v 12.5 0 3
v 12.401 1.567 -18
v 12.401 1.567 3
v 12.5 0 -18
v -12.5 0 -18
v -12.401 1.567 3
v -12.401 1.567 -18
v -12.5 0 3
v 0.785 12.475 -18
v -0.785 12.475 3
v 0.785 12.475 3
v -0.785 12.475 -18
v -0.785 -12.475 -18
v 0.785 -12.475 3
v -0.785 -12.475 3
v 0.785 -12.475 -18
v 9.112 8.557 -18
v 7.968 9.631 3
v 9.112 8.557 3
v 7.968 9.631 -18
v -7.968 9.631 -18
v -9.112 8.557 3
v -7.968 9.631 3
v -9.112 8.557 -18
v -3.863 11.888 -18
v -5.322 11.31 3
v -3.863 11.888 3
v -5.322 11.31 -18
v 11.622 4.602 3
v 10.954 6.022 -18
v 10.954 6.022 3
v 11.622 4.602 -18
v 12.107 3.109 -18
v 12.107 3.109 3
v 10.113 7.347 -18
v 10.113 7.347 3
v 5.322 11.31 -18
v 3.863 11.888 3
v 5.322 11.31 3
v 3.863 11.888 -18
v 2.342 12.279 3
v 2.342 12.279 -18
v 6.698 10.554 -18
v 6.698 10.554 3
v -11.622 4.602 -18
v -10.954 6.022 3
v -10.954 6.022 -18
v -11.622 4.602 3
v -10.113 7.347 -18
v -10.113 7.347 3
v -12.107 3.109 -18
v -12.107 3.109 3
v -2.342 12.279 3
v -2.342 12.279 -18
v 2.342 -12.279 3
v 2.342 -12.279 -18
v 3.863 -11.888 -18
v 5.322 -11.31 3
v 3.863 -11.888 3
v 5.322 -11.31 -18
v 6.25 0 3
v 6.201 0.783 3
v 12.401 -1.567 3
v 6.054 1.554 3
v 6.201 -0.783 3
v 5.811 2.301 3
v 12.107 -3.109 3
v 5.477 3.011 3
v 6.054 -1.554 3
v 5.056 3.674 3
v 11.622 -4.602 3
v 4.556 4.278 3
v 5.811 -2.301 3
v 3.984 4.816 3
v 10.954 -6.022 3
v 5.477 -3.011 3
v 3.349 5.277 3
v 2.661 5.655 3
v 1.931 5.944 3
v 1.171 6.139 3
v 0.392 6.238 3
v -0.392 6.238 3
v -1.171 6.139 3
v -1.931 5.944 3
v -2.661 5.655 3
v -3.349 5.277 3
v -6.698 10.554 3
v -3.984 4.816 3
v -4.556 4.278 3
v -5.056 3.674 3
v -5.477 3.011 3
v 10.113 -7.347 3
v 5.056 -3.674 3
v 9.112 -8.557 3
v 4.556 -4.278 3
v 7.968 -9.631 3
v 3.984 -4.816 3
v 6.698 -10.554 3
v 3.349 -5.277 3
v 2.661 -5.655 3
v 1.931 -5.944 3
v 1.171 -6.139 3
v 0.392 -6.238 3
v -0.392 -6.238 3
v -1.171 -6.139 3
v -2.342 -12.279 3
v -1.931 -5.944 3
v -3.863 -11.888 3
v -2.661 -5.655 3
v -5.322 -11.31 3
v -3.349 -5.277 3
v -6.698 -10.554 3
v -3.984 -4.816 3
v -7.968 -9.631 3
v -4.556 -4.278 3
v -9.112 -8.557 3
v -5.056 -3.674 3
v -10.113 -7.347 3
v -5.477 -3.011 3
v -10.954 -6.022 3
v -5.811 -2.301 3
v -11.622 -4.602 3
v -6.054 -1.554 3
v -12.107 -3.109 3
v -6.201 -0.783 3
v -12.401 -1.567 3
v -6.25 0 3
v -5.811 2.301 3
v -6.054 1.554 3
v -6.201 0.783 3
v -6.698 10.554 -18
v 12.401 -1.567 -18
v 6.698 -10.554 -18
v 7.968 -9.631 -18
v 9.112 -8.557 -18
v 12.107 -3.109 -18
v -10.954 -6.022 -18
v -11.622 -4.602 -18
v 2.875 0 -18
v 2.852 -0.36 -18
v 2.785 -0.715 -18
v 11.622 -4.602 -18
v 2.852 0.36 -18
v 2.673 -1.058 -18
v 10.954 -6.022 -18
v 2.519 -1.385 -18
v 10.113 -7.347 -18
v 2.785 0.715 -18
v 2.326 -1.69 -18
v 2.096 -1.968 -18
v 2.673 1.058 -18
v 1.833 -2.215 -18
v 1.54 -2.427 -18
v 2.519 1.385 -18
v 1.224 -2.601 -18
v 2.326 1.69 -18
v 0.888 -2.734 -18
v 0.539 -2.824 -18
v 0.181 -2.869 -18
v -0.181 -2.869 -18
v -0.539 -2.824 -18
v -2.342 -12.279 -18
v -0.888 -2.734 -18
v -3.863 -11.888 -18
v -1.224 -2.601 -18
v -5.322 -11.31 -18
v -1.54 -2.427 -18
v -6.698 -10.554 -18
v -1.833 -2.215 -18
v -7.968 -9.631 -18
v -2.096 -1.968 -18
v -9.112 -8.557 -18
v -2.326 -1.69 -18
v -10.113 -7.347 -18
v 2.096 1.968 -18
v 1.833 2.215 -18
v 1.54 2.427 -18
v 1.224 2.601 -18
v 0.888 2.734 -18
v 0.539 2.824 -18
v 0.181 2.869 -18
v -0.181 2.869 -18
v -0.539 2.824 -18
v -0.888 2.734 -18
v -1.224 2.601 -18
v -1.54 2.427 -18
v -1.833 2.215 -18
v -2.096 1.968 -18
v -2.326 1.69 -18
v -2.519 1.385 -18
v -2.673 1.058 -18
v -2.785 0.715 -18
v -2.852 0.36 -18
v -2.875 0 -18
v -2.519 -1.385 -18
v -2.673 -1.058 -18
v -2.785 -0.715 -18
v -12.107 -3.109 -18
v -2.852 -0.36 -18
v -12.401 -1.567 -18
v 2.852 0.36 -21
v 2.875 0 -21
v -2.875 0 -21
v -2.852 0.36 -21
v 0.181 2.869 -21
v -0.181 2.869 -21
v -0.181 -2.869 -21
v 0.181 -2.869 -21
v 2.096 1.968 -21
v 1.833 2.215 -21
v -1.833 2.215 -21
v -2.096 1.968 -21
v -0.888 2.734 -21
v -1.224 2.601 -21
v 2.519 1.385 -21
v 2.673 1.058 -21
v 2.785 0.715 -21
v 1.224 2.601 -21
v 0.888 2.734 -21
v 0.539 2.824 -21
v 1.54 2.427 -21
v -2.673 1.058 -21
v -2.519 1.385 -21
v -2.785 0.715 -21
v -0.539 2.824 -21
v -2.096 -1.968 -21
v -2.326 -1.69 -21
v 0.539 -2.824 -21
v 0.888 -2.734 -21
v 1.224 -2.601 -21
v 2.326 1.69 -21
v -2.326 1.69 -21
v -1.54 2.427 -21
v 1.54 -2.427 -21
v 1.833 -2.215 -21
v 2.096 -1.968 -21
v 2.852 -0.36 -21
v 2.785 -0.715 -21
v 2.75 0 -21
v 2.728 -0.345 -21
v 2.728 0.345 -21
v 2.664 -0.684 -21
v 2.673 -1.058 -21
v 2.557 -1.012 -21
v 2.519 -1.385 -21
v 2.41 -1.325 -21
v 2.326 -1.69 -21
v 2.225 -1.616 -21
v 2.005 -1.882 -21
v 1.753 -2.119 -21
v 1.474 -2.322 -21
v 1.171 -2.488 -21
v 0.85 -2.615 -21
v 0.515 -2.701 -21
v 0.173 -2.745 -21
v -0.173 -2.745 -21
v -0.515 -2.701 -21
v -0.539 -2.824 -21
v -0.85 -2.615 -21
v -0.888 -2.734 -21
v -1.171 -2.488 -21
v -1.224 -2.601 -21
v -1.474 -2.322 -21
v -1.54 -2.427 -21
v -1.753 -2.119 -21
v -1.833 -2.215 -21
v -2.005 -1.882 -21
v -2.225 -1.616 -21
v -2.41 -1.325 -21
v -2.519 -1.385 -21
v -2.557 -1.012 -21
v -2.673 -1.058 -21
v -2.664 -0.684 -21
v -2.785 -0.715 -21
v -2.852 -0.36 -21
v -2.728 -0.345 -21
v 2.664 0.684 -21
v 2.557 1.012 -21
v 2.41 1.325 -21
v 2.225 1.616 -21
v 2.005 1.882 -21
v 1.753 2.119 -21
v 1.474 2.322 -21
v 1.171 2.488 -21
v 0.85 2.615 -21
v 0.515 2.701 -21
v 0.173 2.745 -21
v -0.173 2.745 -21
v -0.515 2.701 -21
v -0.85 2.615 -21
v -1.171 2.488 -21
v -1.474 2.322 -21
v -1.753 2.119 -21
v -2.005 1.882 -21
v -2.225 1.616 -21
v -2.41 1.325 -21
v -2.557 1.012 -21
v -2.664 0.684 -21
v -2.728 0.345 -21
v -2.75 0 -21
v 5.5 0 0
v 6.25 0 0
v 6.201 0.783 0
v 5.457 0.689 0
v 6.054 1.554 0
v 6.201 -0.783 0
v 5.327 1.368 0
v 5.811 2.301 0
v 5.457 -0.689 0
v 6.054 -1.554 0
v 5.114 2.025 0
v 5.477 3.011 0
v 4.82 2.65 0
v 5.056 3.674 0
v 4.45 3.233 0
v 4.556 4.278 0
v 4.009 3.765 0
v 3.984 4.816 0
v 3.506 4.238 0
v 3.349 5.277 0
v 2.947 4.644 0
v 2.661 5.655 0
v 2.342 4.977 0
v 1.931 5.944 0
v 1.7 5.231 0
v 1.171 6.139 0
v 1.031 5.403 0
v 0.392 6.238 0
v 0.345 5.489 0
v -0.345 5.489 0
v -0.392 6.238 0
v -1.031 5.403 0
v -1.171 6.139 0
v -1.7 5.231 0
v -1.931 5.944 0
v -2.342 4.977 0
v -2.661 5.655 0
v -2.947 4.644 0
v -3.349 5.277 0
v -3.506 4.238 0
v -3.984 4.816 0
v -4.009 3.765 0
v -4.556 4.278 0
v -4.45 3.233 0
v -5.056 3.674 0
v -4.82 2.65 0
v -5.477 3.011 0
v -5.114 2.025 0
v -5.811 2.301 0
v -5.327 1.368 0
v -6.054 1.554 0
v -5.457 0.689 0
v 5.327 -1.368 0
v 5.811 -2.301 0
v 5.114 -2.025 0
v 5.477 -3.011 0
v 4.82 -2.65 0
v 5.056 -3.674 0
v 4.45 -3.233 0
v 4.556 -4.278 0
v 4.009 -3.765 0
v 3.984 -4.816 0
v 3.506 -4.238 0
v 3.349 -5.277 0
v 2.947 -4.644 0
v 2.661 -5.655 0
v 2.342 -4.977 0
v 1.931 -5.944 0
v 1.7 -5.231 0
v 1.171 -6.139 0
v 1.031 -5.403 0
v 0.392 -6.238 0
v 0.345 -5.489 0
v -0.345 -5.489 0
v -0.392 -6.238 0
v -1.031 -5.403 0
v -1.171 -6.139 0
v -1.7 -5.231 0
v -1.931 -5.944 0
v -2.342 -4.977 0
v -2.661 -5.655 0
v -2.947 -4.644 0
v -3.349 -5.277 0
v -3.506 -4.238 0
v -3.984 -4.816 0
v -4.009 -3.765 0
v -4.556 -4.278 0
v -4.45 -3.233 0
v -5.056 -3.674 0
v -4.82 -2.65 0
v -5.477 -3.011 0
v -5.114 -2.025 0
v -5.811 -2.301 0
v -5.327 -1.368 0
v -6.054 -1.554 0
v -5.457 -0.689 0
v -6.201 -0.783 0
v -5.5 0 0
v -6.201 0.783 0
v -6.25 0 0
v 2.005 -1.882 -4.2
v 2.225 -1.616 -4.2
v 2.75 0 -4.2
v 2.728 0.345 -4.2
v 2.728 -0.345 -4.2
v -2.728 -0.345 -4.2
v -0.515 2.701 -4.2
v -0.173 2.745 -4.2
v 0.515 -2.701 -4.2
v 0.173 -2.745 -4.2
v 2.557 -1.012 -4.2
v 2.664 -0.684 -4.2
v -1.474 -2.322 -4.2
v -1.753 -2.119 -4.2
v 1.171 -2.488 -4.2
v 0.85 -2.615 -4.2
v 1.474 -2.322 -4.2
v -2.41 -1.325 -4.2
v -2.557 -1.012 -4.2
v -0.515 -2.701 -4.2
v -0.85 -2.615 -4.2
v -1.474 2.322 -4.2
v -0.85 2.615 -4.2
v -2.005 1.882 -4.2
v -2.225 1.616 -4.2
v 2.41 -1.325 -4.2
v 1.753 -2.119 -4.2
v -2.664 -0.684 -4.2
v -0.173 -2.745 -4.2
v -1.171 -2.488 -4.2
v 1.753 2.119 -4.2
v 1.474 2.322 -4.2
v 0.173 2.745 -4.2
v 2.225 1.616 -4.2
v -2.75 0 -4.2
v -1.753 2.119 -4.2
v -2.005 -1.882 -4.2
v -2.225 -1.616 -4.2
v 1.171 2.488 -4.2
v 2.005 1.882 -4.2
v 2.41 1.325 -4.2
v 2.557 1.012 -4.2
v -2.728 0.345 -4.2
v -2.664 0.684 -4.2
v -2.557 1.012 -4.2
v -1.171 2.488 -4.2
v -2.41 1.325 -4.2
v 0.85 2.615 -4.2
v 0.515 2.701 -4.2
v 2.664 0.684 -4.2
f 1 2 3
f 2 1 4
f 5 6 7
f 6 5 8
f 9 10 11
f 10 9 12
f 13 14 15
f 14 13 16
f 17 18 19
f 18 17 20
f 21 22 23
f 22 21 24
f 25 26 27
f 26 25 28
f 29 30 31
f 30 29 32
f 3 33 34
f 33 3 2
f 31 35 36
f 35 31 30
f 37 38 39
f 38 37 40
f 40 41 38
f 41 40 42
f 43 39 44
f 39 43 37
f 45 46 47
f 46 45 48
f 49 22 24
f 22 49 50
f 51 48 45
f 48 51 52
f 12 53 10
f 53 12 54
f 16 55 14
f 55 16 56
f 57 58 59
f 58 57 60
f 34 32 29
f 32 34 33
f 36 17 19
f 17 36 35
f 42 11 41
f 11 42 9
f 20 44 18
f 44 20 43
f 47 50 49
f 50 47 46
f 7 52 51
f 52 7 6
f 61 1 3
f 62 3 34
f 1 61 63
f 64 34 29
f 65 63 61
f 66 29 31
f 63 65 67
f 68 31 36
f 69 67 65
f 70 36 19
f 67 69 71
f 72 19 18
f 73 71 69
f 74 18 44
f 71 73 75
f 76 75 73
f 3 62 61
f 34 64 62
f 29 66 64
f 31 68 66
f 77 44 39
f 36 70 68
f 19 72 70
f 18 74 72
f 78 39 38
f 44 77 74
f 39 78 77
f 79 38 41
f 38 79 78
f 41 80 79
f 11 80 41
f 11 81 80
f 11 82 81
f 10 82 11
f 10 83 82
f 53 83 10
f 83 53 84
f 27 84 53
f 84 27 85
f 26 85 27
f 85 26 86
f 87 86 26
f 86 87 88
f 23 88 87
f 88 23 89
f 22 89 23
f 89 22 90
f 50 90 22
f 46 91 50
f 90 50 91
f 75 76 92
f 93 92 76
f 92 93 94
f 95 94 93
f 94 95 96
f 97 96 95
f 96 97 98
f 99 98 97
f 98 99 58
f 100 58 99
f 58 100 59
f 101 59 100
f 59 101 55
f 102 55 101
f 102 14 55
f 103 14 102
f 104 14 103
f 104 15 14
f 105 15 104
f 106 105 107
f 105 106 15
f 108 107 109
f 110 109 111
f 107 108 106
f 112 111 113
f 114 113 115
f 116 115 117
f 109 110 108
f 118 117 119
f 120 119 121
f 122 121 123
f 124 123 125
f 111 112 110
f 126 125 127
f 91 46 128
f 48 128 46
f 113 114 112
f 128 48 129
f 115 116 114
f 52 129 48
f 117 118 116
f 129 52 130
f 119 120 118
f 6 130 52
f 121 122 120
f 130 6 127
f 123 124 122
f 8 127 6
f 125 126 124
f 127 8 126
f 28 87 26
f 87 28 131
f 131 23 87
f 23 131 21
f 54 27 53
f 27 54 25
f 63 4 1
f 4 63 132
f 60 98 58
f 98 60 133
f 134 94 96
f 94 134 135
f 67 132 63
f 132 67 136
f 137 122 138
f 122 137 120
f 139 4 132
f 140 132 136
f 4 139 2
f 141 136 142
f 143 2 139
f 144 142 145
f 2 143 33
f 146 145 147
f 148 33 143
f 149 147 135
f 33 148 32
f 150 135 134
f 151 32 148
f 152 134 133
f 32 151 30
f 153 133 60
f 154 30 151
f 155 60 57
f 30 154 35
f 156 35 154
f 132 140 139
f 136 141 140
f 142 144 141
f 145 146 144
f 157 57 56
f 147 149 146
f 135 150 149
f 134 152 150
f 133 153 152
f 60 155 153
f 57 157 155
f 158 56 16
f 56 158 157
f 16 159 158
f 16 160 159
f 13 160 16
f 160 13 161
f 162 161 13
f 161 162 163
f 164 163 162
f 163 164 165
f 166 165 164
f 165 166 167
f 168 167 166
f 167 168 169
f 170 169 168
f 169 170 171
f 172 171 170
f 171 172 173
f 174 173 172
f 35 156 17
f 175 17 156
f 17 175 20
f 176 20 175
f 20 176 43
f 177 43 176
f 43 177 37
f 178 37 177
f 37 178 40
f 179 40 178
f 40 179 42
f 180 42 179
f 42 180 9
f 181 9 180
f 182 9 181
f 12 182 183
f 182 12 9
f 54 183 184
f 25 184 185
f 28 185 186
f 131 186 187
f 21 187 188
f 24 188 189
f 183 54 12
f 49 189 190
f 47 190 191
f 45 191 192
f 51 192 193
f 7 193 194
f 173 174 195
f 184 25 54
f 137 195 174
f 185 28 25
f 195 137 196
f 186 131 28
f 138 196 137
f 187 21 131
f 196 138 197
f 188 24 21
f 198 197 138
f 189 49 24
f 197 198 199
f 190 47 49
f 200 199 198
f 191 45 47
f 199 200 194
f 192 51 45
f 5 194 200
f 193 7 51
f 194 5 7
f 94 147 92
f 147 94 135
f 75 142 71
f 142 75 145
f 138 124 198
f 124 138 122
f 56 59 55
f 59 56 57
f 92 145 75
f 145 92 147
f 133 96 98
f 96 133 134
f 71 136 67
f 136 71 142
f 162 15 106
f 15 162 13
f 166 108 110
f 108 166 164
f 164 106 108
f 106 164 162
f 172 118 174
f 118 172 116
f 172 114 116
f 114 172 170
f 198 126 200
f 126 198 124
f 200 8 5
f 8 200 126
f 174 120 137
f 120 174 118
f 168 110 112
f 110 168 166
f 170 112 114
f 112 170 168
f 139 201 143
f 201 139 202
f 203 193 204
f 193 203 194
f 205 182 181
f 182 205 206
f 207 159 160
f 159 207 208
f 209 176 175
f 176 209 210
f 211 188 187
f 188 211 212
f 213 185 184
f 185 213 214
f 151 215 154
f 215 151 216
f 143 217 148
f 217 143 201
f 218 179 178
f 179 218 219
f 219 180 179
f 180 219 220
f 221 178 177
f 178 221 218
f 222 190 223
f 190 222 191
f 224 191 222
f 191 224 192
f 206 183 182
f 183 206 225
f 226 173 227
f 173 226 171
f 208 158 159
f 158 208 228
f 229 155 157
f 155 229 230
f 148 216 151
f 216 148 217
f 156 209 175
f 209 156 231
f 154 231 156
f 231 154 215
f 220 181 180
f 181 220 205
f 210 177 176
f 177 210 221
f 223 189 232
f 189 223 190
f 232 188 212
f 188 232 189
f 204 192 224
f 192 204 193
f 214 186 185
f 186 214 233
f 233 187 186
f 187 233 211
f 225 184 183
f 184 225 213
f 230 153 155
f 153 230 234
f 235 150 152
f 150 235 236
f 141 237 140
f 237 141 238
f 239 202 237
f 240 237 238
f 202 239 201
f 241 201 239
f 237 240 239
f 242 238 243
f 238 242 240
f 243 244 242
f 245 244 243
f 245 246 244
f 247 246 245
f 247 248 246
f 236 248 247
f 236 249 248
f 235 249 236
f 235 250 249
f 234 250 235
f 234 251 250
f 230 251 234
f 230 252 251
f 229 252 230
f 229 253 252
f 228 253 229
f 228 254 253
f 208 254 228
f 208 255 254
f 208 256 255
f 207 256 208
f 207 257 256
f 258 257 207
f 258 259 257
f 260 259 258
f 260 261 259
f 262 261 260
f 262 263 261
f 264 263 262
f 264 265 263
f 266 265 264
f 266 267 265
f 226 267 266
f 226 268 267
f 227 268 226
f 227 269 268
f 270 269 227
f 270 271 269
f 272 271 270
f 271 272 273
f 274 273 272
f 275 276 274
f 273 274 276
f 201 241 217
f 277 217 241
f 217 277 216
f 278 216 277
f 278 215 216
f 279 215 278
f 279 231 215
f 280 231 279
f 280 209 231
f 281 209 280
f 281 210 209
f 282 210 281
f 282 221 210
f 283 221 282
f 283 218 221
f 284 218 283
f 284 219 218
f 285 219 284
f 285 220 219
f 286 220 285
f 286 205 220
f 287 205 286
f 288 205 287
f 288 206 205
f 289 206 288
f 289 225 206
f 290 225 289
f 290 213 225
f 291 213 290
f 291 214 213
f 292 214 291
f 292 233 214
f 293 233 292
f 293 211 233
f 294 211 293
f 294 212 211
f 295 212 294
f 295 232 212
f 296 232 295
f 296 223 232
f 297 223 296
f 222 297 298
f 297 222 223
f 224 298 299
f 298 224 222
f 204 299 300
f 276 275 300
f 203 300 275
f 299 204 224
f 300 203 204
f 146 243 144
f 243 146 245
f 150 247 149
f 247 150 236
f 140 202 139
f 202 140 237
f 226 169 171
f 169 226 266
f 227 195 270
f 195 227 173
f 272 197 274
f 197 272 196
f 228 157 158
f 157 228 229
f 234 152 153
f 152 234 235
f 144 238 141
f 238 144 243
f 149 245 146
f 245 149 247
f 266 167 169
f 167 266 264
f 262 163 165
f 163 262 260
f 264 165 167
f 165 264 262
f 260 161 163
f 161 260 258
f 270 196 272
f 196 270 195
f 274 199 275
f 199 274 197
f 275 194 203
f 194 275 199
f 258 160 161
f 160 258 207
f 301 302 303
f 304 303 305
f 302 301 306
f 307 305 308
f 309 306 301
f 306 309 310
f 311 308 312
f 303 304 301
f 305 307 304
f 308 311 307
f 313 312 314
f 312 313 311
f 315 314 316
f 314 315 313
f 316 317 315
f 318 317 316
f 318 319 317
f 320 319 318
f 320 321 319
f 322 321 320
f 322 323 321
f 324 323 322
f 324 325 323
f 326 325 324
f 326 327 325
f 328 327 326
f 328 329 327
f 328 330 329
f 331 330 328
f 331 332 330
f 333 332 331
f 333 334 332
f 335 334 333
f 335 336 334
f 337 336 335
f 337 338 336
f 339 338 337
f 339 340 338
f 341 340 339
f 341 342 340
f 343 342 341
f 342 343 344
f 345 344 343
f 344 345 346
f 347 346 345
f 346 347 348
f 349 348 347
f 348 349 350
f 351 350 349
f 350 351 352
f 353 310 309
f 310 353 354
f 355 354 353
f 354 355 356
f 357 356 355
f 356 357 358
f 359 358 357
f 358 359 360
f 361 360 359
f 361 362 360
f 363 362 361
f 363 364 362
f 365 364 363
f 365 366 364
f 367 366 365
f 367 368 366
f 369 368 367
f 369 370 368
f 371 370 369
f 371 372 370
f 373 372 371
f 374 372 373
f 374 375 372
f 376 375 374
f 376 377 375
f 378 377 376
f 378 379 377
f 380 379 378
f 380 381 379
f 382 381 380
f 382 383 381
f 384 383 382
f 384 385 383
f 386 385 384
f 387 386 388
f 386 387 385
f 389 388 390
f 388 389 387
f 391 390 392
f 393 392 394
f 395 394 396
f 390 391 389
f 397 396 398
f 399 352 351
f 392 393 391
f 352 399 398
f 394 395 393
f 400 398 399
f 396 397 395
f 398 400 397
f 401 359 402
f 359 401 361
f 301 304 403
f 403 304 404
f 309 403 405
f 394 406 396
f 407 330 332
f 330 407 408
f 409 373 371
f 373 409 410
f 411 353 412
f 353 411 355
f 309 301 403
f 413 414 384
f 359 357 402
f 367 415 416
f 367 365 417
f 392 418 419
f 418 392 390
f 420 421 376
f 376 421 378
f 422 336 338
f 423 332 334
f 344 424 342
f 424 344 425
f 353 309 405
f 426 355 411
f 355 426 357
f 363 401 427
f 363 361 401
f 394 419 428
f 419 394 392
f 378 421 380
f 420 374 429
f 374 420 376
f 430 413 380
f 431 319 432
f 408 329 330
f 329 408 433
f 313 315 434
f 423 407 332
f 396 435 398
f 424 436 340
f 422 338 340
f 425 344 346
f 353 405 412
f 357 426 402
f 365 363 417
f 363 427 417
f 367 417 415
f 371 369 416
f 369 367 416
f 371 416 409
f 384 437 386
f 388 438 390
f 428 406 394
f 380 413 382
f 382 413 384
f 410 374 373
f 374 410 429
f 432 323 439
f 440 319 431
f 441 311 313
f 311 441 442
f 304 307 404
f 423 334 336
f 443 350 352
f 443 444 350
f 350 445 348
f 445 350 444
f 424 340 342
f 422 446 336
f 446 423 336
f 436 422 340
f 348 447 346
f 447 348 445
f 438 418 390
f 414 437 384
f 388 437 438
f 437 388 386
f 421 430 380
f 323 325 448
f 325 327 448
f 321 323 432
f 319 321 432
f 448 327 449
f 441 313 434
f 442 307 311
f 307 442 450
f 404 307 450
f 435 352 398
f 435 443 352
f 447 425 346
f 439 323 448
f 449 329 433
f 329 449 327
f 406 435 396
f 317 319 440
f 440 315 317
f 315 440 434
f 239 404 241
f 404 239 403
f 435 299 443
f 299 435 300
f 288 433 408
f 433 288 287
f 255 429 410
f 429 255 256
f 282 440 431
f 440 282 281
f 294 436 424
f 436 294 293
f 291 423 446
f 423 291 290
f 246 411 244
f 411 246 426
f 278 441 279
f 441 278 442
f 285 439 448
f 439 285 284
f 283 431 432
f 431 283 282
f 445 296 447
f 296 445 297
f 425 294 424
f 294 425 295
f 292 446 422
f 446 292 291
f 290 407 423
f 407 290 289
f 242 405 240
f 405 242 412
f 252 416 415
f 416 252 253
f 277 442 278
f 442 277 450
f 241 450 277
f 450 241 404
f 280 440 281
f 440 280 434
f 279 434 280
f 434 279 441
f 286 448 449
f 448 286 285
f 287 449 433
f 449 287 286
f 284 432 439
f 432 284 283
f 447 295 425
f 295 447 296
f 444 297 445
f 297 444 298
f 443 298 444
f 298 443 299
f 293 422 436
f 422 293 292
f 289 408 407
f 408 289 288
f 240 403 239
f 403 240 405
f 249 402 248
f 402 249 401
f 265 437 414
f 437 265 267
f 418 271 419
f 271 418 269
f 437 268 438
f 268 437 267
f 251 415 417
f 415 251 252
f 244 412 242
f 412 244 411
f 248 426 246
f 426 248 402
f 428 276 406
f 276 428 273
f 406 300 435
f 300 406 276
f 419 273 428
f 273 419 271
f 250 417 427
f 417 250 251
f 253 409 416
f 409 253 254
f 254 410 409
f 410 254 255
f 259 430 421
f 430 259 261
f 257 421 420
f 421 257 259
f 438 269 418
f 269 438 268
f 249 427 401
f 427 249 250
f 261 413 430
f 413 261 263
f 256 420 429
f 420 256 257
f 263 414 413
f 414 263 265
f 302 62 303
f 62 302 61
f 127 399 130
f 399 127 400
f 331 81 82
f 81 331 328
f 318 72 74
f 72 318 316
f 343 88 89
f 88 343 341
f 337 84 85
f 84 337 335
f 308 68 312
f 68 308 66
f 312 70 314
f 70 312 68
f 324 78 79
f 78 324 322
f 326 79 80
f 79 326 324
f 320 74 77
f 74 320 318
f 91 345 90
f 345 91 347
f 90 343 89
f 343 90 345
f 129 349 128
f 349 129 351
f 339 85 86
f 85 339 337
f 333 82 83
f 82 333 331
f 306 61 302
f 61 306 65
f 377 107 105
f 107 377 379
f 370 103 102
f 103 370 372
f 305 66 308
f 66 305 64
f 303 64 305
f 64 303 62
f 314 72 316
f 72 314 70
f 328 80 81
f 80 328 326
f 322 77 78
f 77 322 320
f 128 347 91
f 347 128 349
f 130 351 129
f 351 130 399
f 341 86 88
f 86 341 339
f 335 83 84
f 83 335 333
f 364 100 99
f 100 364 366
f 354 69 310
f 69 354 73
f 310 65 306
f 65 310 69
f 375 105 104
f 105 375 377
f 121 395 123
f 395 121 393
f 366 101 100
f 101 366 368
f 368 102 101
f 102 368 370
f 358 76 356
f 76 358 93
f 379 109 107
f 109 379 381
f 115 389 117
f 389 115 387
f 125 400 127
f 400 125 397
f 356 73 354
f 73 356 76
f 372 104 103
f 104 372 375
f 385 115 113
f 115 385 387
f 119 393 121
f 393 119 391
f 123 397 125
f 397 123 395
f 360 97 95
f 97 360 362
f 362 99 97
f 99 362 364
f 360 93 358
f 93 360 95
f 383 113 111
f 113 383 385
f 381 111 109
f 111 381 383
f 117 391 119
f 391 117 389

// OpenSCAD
$fn = 50;


difference() {
	union() {
		translate(v = [0, 0, -18.0000000000]) {
			cylinder(h = 21, r = 12.5000000000);
		}
		#translate(v = [0, 0, -21.0000000000]) {
			cylinder(h = 21, r = 2.8750000000);
		}
	}
	union() {
		translate(v = [0, 0, 0]) {
			rotate(a = [0, 0, 0]) {
				difference() {
					union() {
						translate(v = [0, 0, -21.0000000000]) {
							cylinder(h = 21, r = 2.2500000000);
						}
						translate(v = [0, 0, -4.2000000000]) {
							cylinder(h = 4.2000000000, r1 = 2.7500000000, r2 = 5.5000000000);
						}
						translate(v = [0, 0, -21.0000000000]) {
							cylinder(h = 21, r = 2.7500000000);
						}
						translate(v = [0, 0, -21.0000000000]) {
							cylinder(h = 21, r = 2.2500000000);
						}
					}
					union();
				}
			}
		}
		#cylinder(h = 3, r = 6.2500000000);
	}
}
